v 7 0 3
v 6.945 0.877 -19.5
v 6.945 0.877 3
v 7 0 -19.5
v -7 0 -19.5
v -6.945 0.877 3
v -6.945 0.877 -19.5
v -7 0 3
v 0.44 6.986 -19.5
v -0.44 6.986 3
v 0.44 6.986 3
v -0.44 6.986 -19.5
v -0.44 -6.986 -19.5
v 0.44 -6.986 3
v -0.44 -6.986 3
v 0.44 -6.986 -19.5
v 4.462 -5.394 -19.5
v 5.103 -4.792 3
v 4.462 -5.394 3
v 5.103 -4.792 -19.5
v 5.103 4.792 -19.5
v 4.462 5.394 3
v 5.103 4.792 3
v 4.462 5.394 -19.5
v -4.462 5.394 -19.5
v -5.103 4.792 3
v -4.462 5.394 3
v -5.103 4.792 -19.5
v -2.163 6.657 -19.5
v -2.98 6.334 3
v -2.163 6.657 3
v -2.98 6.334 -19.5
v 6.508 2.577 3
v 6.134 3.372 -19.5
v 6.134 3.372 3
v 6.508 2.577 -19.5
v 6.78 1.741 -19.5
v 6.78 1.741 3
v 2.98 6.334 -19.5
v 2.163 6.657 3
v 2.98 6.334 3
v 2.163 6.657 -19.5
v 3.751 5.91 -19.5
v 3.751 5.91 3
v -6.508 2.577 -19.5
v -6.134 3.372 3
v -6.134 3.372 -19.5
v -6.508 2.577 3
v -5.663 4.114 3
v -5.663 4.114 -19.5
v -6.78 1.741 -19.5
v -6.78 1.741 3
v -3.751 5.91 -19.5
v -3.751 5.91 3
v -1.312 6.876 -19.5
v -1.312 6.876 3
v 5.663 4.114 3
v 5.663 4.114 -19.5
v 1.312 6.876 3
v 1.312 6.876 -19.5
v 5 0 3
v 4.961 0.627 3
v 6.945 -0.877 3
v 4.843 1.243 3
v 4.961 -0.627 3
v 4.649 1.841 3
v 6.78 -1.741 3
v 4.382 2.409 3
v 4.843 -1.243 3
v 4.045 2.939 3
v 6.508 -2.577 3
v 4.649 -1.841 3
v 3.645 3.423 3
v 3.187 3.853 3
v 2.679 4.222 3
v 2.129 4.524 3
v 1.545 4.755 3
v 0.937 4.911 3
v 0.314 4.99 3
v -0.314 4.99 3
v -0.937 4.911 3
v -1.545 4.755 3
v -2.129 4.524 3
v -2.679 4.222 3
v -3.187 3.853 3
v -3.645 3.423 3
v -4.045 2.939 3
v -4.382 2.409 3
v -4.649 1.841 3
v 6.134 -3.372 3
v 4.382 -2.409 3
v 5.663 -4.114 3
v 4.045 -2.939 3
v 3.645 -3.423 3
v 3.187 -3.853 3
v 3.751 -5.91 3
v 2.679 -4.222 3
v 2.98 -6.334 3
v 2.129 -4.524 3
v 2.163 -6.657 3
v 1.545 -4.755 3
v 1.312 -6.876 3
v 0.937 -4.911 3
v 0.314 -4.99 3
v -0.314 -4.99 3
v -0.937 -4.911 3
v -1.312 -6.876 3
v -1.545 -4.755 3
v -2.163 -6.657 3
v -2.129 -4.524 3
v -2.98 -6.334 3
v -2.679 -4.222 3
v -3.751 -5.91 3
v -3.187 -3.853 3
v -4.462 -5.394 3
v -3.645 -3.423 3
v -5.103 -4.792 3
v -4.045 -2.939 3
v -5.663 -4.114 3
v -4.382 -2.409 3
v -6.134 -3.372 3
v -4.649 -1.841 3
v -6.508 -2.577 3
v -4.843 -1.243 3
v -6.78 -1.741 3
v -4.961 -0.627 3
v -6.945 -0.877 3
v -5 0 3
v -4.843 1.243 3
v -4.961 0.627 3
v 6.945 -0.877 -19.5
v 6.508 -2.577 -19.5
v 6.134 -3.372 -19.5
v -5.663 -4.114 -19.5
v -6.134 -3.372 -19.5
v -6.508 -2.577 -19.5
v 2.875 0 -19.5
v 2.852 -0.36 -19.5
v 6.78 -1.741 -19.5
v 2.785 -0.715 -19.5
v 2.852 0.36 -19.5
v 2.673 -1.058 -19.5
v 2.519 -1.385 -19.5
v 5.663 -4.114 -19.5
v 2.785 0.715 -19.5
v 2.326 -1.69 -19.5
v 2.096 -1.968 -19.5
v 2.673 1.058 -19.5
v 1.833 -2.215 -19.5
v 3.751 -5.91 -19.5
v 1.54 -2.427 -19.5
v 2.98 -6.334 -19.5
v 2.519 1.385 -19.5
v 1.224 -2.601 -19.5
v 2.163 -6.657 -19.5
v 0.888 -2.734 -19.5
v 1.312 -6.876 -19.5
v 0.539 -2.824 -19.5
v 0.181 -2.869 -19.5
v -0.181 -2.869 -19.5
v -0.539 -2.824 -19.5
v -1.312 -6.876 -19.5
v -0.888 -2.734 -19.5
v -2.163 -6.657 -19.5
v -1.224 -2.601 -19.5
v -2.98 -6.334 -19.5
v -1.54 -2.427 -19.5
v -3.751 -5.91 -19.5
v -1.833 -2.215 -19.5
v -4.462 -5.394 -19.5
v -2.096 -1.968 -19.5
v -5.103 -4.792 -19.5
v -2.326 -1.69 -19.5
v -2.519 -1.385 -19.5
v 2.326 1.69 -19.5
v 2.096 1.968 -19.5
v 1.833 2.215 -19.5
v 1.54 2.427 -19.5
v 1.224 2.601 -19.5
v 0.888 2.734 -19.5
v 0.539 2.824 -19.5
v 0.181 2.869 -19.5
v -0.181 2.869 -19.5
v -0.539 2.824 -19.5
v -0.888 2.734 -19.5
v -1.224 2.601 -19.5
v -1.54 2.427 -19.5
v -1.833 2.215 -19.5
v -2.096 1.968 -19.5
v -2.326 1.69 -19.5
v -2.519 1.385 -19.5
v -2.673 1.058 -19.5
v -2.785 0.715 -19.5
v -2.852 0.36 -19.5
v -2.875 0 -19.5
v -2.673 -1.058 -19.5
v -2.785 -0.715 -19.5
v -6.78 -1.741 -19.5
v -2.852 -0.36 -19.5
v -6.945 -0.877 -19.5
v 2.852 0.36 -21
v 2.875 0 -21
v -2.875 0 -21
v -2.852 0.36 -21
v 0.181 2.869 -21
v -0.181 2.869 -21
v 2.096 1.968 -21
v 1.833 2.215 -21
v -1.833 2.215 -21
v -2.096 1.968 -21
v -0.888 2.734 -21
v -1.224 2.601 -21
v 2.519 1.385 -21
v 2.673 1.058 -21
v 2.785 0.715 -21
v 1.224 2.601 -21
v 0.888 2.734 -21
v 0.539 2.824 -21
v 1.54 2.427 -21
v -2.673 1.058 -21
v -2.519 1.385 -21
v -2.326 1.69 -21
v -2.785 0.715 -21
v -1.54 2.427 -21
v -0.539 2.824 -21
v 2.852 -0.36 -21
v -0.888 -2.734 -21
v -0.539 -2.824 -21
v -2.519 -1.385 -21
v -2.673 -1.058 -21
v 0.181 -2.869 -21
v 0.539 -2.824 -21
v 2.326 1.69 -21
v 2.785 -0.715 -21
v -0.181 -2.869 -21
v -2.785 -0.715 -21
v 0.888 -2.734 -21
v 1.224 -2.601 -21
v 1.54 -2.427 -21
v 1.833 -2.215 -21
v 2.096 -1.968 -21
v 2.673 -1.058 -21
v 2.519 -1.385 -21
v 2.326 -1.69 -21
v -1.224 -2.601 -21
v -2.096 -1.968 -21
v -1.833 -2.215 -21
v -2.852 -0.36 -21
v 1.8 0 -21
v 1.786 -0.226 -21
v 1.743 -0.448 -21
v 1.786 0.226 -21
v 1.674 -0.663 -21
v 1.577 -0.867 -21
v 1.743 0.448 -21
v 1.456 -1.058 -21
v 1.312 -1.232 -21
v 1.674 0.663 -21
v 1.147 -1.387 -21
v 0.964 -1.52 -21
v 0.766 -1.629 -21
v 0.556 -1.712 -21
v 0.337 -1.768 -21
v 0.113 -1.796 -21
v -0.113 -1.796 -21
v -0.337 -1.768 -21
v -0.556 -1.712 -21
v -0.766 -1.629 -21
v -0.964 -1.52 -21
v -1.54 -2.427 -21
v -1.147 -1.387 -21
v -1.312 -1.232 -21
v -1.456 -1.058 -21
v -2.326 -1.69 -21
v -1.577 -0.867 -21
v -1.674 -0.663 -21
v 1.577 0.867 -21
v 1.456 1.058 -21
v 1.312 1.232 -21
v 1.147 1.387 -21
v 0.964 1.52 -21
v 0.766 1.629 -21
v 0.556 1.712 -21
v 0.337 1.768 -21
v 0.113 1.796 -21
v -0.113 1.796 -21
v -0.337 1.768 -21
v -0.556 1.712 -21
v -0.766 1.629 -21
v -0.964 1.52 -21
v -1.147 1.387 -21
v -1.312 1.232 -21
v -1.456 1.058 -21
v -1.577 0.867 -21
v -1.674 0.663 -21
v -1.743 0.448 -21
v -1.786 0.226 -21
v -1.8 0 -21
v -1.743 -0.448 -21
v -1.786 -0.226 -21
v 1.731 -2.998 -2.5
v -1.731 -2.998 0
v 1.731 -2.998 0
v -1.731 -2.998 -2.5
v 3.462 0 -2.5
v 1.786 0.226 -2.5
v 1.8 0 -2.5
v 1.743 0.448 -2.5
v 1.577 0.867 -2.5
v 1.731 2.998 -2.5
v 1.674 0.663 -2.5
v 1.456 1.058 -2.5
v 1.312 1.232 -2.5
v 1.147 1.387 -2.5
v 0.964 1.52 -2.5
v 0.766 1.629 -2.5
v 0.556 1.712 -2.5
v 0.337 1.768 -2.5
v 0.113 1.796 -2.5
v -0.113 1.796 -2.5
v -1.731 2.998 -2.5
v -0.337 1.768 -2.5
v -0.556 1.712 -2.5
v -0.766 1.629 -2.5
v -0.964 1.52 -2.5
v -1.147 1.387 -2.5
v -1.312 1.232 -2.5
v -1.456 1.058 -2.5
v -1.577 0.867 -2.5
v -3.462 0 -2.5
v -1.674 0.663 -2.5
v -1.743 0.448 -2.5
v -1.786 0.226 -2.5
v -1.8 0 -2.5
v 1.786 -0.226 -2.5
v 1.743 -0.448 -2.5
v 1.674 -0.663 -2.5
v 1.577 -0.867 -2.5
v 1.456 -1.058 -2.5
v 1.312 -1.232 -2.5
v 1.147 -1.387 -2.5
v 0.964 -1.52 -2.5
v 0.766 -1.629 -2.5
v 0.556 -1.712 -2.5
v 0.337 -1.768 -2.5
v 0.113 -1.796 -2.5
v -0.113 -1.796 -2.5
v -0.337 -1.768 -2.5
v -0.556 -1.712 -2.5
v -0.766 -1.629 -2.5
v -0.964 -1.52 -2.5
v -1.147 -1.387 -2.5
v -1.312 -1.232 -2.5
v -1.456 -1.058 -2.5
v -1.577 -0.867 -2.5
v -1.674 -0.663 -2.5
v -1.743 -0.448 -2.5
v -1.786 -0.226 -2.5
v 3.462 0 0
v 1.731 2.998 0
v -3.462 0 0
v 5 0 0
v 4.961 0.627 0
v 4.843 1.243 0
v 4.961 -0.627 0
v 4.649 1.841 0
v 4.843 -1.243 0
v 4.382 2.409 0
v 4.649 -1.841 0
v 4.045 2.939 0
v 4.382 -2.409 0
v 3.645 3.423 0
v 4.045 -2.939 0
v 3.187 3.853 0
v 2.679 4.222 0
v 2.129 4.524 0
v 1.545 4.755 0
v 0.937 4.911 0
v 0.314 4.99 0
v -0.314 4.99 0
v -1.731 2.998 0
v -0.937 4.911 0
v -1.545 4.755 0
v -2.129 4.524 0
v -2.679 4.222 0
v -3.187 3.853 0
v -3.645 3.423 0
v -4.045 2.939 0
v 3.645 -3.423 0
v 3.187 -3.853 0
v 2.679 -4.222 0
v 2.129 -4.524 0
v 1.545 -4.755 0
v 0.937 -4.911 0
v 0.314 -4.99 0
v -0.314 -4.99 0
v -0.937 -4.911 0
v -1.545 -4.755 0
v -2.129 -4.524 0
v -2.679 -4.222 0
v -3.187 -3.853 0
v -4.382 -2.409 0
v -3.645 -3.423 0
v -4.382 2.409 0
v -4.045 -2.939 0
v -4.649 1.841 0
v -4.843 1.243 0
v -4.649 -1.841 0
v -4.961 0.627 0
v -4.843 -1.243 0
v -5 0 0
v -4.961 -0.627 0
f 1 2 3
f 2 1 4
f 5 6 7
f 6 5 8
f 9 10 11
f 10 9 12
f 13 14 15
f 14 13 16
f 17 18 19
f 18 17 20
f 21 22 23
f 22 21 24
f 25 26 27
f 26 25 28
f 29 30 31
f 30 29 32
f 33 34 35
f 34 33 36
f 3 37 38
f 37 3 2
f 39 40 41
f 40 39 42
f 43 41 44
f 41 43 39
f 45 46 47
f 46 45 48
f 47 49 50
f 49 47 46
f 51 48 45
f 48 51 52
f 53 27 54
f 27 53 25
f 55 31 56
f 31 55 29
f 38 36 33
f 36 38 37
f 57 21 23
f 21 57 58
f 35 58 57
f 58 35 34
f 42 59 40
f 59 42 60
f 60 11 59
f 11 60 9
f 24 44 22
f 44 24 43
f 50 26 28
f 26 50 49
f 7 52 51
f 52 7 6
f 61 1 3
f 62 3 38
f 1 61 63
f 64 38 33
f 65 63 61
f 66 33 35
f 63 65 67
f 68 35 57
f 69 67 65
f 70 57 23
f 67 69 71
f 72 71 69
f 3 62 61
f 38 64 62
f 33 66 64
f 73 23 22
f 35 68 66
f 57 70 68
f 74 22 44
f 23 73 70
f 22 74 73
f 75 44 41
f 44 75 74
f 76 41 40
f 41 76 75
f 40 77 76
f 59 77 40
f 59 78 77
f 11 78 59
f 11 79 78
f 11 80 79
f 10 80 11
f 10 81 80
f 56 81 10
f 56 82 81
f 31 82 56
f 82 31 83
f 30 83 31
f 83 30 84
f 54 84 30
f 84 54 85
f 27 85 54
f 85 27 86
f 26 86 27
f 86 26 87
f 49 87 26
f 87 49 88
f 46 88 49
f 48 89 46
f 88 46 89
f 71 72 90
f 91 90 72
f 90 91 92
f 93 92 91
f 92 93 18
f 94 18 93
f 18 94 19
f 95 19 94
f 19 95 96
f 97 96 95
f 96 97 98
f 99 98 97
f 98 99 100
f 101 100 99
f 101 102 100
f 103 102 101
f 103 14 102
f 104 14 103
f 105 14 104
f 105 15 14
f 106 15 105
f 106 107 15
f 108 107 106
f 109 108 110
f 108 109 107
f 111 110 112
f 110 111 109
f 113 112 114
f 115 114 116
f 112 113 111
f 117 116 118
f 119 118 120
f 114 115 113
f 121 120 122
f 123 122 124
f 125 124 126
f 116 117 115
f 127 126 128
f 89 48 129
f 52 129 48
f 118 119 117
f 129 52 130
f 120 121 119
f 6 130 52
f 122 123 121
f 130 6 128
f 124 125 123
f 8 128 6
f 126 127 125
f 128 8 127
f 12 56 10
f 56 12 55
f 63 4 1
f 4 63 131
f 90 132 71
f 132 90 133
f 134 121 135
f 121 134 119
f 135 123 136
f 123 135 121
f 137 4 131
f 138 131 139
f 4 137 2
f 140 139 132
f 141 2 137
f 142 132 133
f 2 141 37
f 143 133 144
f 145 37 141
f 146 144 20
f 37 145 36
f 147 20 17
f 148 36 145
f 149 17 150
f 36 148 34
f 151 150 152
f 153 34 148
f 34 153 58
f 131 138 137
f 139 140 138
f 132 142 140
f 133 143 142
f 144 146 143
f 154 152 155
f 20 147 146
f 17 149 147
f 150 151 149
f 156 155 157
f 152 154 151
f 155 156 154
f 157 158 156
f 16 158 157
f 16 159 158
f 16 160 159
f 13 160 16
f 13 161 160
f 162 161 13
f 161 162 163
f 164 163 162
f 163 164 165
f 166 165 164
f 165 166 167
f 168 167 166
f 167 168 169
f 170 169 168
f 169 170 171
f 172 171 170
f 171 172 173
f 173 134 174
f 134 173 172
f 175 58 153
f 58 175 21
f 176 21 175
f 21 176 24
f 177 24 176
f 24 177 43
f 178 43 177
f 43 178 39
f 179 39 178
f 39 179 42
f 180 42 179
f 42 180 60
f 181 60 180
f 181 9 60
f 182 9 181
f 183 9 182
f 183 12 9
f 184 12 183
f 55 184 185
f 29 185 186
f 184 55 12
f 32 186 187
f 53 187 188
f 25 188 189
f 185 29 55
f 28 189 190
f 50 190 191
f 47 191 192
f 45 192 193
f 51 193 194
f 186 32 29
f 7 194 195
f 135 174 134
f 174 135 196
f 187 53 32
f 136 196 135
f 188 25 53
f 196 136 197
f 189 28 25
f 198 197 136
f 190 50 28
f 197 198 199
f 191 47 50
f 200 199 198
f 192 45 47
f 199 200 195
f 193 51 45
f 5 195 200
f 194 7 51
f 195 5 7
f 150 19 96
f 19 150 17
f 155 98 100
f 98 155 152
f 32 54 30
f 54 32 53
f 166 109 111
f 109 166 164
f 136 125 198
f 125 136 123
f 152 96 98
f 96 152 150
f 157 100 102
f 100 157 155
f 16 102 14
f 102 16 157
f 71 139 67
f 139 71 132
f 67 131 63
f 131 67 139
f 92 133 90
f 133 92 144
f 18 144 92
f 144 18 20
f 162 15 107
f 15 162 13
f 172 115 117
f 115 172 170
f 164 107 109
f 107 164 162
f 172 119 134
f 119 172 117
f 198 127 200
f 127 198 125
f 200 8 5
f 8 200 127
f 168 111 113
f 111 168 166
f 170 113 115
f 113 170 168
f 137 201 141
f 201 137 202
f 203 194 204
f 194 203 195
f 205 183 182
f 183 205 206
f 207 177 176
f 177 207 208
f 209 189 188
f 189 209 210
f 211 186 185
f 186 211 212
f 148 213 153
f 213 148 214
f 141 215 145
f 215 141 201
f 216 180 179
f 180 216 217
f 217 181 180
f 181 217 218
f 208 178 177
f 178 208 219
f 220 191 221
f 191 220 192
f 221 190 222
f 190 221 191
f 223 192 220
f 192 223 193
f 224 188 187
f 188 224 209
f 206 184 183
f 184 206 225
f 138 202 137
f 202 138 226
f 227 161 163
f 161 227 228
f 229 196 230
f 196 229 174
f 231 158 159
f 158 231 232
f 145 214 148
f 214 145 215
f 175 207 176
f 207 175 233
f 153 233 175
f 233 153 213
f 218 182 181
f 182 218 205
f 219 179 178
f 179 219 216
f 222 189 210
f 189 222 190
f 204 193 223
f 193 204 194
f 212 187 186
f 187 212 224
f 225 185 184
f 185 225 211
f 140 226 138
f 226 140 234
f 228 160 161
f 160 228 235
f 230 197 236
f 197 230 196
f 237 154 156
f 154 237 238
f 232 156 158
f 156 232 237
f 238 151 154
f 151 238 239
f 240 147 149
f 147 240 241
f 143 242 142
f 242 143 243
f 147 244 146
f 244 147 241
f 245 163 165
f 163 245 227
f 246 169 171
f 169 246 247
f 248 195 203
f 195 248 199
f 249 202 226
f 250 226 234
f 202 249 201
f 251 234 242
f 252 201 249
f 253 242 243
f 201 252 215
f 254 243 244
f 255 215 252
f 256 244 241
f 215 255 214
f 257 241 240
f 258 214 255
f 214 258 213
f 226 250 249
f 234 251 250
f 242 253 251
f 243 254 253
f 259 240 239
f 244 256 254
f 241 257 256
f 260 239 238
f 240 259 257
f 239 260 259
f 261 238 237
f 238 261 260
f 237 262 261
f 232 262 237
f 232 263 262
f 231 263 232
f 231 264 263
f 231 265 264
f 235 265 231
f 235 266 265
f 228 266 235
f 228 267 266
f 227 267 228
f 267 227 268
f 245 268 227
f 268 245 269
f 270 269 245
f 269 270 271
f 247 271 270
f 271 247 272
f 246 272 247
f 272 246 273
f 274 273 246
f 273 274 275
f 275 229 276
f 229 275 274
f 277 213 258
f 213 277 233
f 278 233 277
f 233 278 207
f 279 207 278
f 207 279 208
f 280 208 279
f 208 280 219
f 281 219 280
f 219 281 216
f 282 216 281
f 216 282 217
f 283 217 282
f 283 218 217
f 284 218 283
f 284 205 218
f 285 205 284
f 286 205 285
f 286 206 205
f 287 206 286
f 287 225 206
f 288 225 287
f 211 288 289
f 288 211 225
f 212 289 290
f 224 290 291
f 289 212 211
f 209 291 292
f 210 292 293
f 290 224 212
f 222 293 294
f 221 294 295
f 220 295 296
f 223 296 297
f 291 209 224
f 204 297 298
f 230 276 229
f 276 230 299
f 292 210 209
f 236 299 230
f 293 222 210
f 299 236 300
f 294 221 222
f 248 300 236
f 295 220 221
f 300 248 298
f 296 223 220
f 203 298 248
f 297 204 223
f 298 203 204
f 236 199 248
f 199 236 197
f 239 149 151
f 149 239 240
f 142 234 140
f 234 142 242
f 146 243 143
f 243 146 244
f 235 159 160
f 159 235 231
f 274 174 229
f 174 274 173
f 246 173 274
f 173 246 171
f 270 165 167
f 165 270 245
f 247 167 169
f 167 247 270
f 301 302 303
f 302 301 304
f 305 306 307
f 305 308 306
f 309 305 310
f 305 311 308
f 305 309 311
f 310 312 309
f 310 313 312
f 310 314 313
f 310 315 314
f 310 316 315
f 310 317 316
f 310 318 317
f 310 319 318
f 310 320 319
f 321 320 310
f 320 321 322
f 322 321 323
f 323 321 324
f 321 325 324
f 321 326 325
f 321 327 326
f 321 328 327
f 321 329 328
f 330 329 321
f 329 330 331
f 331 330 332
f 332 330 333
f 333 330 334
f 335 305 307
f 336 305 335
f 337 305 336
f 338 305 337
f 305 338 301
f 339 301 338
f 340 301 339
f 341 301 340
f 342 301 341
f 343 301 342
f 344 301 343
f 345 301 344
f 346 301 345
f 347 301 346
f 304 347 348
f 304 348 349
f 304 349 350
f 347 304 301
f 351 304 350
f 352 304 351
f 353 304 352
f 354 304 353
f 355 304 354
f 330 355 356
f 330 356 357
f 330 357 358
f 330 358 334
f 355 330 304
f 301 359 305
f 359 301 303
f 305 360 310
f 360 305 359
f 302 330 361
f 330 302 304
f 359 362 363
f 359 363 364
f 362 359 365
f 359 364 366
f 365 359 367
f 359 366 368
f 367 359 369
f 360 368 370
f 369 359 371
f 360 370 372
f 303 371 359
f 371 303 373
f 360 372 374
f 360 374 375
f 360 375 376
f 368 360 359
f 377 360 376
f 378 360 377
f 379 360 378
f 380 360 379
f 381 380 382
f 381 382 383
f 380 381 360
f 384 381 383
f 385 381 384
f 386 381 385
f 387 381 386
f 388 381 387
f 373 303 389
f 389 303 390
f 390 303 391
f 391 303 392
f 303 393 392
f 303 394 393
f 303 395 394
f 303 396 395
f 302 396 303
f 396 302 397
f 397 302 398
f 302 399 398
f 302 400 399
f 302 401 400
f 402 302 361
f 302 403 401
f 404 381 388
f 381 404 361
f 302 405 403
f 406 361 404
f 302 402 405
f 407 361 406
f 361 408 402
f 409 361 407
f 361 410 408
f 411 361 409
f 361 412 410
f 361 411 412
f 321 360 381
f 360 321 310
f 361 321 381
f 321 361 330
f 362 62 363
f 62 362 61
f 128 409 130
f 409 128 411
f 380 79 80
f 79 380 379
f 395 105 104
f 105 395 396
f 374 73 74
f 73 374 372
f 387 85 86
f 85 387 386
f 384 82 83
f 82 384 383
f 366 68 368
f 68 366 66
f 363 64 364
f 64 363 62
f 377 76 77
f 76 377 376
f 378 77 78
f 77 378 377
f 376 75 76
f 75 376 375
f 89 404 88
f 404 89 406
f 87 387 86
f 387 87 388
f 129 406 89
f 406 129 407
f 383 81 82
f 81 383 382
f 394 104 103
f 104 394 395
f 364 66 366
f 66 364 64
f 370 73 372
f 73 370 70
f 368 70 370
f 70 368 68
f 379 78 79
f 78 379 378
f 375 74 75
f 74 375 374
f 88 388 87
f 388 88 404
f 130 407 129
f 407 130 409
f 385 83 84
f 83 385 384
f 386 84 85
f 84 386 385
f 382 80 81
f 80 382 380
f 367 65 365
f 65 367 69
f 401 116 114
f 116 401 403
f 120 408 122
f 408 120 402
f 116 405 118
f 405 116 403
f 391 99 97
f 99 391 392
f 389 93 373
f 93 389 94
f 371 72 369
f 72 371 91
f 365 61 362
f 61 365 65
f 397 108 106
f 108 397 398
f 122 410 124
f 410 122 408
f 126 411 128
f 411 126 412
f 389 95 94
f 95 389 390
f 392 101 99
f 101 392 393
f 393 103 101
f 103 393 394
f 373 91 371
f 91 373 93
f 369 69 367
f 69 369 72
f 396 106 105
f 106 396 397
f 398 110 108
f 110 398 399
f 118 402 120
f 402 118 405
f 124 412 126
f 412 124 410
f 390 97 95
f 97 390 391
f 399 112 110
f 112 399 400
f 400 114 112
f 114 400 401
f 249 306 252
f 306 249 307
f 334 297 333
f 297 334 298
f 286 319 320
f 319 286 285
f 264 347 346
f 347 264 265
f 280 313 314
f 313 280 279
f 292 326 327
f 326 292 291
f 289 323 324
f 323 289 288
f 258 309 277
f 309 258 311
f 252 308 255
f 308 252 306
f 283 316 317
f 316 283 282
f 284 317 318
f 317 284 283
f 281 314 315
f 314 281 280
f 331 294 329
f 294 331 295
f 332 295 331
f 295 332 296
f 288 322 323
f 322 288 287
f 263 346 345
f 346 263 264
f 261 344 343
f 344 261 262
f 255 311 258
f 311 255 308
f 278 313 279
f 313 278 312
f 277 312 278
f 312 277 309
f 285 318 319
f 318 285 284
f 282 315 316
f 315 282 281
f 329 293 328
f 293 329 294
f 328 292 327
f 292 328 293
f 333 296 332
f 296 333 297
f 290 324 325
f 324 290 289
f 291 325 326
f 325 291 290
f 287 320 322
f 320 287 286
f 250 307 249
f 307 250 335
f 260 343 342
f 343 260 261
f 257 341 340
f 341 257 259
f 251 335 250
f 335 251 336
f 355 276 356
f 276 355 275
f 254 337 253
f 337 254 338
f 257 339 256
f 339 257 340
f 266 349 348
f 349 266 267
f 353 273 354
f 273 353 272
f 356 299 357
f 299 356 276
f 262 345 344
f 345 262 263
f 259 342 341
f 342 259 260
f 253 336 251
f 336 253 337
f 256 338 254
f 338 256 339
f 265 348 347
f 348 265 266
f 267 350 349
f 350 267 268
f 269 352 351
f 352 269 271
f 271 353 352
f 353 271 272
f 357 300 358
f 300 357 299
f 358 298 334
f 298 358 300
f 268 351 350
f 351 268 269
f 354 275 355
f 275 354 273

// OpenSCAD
$fn = 50;

difference() {
	union() {
		translate(v = [0, 0, -19.5]) {
			cylinder(h = 22.5, r = 7.0);
		}
		#translate(v = [0, 0, -21.0]) {
			cylinder(h = 21, r = 2.875);
		}
	}
	union() {
		translate(v = [0, 0, 0]) {
			rotate(a = [0, 0, 0]) {
				difference() {
					union() {
						translate(v = [0, 0, -2.5]) {
							linear_extrude(height = 2.5) {
								polygon(points = [[3.4619999999999997, 0.0], [1.7310000000000003, 2.9981799479017264], [-1.7309999999999992, 2.9981799479017264], [-3.4619999999999997, 4.2397272186481365e-16], [-1.7310000000000014, -2.998179947901726], [1.7309999999999977, -2.9981799479017277]]);
							}
						}
					}
					union();
				}
			}
		}
		#cylinder(h = 3, r = 5.0);
		#translate(v = [0, 0, -100.0]) {
			cylinder(h = 200, r = 1.8);
		}
	}
}
